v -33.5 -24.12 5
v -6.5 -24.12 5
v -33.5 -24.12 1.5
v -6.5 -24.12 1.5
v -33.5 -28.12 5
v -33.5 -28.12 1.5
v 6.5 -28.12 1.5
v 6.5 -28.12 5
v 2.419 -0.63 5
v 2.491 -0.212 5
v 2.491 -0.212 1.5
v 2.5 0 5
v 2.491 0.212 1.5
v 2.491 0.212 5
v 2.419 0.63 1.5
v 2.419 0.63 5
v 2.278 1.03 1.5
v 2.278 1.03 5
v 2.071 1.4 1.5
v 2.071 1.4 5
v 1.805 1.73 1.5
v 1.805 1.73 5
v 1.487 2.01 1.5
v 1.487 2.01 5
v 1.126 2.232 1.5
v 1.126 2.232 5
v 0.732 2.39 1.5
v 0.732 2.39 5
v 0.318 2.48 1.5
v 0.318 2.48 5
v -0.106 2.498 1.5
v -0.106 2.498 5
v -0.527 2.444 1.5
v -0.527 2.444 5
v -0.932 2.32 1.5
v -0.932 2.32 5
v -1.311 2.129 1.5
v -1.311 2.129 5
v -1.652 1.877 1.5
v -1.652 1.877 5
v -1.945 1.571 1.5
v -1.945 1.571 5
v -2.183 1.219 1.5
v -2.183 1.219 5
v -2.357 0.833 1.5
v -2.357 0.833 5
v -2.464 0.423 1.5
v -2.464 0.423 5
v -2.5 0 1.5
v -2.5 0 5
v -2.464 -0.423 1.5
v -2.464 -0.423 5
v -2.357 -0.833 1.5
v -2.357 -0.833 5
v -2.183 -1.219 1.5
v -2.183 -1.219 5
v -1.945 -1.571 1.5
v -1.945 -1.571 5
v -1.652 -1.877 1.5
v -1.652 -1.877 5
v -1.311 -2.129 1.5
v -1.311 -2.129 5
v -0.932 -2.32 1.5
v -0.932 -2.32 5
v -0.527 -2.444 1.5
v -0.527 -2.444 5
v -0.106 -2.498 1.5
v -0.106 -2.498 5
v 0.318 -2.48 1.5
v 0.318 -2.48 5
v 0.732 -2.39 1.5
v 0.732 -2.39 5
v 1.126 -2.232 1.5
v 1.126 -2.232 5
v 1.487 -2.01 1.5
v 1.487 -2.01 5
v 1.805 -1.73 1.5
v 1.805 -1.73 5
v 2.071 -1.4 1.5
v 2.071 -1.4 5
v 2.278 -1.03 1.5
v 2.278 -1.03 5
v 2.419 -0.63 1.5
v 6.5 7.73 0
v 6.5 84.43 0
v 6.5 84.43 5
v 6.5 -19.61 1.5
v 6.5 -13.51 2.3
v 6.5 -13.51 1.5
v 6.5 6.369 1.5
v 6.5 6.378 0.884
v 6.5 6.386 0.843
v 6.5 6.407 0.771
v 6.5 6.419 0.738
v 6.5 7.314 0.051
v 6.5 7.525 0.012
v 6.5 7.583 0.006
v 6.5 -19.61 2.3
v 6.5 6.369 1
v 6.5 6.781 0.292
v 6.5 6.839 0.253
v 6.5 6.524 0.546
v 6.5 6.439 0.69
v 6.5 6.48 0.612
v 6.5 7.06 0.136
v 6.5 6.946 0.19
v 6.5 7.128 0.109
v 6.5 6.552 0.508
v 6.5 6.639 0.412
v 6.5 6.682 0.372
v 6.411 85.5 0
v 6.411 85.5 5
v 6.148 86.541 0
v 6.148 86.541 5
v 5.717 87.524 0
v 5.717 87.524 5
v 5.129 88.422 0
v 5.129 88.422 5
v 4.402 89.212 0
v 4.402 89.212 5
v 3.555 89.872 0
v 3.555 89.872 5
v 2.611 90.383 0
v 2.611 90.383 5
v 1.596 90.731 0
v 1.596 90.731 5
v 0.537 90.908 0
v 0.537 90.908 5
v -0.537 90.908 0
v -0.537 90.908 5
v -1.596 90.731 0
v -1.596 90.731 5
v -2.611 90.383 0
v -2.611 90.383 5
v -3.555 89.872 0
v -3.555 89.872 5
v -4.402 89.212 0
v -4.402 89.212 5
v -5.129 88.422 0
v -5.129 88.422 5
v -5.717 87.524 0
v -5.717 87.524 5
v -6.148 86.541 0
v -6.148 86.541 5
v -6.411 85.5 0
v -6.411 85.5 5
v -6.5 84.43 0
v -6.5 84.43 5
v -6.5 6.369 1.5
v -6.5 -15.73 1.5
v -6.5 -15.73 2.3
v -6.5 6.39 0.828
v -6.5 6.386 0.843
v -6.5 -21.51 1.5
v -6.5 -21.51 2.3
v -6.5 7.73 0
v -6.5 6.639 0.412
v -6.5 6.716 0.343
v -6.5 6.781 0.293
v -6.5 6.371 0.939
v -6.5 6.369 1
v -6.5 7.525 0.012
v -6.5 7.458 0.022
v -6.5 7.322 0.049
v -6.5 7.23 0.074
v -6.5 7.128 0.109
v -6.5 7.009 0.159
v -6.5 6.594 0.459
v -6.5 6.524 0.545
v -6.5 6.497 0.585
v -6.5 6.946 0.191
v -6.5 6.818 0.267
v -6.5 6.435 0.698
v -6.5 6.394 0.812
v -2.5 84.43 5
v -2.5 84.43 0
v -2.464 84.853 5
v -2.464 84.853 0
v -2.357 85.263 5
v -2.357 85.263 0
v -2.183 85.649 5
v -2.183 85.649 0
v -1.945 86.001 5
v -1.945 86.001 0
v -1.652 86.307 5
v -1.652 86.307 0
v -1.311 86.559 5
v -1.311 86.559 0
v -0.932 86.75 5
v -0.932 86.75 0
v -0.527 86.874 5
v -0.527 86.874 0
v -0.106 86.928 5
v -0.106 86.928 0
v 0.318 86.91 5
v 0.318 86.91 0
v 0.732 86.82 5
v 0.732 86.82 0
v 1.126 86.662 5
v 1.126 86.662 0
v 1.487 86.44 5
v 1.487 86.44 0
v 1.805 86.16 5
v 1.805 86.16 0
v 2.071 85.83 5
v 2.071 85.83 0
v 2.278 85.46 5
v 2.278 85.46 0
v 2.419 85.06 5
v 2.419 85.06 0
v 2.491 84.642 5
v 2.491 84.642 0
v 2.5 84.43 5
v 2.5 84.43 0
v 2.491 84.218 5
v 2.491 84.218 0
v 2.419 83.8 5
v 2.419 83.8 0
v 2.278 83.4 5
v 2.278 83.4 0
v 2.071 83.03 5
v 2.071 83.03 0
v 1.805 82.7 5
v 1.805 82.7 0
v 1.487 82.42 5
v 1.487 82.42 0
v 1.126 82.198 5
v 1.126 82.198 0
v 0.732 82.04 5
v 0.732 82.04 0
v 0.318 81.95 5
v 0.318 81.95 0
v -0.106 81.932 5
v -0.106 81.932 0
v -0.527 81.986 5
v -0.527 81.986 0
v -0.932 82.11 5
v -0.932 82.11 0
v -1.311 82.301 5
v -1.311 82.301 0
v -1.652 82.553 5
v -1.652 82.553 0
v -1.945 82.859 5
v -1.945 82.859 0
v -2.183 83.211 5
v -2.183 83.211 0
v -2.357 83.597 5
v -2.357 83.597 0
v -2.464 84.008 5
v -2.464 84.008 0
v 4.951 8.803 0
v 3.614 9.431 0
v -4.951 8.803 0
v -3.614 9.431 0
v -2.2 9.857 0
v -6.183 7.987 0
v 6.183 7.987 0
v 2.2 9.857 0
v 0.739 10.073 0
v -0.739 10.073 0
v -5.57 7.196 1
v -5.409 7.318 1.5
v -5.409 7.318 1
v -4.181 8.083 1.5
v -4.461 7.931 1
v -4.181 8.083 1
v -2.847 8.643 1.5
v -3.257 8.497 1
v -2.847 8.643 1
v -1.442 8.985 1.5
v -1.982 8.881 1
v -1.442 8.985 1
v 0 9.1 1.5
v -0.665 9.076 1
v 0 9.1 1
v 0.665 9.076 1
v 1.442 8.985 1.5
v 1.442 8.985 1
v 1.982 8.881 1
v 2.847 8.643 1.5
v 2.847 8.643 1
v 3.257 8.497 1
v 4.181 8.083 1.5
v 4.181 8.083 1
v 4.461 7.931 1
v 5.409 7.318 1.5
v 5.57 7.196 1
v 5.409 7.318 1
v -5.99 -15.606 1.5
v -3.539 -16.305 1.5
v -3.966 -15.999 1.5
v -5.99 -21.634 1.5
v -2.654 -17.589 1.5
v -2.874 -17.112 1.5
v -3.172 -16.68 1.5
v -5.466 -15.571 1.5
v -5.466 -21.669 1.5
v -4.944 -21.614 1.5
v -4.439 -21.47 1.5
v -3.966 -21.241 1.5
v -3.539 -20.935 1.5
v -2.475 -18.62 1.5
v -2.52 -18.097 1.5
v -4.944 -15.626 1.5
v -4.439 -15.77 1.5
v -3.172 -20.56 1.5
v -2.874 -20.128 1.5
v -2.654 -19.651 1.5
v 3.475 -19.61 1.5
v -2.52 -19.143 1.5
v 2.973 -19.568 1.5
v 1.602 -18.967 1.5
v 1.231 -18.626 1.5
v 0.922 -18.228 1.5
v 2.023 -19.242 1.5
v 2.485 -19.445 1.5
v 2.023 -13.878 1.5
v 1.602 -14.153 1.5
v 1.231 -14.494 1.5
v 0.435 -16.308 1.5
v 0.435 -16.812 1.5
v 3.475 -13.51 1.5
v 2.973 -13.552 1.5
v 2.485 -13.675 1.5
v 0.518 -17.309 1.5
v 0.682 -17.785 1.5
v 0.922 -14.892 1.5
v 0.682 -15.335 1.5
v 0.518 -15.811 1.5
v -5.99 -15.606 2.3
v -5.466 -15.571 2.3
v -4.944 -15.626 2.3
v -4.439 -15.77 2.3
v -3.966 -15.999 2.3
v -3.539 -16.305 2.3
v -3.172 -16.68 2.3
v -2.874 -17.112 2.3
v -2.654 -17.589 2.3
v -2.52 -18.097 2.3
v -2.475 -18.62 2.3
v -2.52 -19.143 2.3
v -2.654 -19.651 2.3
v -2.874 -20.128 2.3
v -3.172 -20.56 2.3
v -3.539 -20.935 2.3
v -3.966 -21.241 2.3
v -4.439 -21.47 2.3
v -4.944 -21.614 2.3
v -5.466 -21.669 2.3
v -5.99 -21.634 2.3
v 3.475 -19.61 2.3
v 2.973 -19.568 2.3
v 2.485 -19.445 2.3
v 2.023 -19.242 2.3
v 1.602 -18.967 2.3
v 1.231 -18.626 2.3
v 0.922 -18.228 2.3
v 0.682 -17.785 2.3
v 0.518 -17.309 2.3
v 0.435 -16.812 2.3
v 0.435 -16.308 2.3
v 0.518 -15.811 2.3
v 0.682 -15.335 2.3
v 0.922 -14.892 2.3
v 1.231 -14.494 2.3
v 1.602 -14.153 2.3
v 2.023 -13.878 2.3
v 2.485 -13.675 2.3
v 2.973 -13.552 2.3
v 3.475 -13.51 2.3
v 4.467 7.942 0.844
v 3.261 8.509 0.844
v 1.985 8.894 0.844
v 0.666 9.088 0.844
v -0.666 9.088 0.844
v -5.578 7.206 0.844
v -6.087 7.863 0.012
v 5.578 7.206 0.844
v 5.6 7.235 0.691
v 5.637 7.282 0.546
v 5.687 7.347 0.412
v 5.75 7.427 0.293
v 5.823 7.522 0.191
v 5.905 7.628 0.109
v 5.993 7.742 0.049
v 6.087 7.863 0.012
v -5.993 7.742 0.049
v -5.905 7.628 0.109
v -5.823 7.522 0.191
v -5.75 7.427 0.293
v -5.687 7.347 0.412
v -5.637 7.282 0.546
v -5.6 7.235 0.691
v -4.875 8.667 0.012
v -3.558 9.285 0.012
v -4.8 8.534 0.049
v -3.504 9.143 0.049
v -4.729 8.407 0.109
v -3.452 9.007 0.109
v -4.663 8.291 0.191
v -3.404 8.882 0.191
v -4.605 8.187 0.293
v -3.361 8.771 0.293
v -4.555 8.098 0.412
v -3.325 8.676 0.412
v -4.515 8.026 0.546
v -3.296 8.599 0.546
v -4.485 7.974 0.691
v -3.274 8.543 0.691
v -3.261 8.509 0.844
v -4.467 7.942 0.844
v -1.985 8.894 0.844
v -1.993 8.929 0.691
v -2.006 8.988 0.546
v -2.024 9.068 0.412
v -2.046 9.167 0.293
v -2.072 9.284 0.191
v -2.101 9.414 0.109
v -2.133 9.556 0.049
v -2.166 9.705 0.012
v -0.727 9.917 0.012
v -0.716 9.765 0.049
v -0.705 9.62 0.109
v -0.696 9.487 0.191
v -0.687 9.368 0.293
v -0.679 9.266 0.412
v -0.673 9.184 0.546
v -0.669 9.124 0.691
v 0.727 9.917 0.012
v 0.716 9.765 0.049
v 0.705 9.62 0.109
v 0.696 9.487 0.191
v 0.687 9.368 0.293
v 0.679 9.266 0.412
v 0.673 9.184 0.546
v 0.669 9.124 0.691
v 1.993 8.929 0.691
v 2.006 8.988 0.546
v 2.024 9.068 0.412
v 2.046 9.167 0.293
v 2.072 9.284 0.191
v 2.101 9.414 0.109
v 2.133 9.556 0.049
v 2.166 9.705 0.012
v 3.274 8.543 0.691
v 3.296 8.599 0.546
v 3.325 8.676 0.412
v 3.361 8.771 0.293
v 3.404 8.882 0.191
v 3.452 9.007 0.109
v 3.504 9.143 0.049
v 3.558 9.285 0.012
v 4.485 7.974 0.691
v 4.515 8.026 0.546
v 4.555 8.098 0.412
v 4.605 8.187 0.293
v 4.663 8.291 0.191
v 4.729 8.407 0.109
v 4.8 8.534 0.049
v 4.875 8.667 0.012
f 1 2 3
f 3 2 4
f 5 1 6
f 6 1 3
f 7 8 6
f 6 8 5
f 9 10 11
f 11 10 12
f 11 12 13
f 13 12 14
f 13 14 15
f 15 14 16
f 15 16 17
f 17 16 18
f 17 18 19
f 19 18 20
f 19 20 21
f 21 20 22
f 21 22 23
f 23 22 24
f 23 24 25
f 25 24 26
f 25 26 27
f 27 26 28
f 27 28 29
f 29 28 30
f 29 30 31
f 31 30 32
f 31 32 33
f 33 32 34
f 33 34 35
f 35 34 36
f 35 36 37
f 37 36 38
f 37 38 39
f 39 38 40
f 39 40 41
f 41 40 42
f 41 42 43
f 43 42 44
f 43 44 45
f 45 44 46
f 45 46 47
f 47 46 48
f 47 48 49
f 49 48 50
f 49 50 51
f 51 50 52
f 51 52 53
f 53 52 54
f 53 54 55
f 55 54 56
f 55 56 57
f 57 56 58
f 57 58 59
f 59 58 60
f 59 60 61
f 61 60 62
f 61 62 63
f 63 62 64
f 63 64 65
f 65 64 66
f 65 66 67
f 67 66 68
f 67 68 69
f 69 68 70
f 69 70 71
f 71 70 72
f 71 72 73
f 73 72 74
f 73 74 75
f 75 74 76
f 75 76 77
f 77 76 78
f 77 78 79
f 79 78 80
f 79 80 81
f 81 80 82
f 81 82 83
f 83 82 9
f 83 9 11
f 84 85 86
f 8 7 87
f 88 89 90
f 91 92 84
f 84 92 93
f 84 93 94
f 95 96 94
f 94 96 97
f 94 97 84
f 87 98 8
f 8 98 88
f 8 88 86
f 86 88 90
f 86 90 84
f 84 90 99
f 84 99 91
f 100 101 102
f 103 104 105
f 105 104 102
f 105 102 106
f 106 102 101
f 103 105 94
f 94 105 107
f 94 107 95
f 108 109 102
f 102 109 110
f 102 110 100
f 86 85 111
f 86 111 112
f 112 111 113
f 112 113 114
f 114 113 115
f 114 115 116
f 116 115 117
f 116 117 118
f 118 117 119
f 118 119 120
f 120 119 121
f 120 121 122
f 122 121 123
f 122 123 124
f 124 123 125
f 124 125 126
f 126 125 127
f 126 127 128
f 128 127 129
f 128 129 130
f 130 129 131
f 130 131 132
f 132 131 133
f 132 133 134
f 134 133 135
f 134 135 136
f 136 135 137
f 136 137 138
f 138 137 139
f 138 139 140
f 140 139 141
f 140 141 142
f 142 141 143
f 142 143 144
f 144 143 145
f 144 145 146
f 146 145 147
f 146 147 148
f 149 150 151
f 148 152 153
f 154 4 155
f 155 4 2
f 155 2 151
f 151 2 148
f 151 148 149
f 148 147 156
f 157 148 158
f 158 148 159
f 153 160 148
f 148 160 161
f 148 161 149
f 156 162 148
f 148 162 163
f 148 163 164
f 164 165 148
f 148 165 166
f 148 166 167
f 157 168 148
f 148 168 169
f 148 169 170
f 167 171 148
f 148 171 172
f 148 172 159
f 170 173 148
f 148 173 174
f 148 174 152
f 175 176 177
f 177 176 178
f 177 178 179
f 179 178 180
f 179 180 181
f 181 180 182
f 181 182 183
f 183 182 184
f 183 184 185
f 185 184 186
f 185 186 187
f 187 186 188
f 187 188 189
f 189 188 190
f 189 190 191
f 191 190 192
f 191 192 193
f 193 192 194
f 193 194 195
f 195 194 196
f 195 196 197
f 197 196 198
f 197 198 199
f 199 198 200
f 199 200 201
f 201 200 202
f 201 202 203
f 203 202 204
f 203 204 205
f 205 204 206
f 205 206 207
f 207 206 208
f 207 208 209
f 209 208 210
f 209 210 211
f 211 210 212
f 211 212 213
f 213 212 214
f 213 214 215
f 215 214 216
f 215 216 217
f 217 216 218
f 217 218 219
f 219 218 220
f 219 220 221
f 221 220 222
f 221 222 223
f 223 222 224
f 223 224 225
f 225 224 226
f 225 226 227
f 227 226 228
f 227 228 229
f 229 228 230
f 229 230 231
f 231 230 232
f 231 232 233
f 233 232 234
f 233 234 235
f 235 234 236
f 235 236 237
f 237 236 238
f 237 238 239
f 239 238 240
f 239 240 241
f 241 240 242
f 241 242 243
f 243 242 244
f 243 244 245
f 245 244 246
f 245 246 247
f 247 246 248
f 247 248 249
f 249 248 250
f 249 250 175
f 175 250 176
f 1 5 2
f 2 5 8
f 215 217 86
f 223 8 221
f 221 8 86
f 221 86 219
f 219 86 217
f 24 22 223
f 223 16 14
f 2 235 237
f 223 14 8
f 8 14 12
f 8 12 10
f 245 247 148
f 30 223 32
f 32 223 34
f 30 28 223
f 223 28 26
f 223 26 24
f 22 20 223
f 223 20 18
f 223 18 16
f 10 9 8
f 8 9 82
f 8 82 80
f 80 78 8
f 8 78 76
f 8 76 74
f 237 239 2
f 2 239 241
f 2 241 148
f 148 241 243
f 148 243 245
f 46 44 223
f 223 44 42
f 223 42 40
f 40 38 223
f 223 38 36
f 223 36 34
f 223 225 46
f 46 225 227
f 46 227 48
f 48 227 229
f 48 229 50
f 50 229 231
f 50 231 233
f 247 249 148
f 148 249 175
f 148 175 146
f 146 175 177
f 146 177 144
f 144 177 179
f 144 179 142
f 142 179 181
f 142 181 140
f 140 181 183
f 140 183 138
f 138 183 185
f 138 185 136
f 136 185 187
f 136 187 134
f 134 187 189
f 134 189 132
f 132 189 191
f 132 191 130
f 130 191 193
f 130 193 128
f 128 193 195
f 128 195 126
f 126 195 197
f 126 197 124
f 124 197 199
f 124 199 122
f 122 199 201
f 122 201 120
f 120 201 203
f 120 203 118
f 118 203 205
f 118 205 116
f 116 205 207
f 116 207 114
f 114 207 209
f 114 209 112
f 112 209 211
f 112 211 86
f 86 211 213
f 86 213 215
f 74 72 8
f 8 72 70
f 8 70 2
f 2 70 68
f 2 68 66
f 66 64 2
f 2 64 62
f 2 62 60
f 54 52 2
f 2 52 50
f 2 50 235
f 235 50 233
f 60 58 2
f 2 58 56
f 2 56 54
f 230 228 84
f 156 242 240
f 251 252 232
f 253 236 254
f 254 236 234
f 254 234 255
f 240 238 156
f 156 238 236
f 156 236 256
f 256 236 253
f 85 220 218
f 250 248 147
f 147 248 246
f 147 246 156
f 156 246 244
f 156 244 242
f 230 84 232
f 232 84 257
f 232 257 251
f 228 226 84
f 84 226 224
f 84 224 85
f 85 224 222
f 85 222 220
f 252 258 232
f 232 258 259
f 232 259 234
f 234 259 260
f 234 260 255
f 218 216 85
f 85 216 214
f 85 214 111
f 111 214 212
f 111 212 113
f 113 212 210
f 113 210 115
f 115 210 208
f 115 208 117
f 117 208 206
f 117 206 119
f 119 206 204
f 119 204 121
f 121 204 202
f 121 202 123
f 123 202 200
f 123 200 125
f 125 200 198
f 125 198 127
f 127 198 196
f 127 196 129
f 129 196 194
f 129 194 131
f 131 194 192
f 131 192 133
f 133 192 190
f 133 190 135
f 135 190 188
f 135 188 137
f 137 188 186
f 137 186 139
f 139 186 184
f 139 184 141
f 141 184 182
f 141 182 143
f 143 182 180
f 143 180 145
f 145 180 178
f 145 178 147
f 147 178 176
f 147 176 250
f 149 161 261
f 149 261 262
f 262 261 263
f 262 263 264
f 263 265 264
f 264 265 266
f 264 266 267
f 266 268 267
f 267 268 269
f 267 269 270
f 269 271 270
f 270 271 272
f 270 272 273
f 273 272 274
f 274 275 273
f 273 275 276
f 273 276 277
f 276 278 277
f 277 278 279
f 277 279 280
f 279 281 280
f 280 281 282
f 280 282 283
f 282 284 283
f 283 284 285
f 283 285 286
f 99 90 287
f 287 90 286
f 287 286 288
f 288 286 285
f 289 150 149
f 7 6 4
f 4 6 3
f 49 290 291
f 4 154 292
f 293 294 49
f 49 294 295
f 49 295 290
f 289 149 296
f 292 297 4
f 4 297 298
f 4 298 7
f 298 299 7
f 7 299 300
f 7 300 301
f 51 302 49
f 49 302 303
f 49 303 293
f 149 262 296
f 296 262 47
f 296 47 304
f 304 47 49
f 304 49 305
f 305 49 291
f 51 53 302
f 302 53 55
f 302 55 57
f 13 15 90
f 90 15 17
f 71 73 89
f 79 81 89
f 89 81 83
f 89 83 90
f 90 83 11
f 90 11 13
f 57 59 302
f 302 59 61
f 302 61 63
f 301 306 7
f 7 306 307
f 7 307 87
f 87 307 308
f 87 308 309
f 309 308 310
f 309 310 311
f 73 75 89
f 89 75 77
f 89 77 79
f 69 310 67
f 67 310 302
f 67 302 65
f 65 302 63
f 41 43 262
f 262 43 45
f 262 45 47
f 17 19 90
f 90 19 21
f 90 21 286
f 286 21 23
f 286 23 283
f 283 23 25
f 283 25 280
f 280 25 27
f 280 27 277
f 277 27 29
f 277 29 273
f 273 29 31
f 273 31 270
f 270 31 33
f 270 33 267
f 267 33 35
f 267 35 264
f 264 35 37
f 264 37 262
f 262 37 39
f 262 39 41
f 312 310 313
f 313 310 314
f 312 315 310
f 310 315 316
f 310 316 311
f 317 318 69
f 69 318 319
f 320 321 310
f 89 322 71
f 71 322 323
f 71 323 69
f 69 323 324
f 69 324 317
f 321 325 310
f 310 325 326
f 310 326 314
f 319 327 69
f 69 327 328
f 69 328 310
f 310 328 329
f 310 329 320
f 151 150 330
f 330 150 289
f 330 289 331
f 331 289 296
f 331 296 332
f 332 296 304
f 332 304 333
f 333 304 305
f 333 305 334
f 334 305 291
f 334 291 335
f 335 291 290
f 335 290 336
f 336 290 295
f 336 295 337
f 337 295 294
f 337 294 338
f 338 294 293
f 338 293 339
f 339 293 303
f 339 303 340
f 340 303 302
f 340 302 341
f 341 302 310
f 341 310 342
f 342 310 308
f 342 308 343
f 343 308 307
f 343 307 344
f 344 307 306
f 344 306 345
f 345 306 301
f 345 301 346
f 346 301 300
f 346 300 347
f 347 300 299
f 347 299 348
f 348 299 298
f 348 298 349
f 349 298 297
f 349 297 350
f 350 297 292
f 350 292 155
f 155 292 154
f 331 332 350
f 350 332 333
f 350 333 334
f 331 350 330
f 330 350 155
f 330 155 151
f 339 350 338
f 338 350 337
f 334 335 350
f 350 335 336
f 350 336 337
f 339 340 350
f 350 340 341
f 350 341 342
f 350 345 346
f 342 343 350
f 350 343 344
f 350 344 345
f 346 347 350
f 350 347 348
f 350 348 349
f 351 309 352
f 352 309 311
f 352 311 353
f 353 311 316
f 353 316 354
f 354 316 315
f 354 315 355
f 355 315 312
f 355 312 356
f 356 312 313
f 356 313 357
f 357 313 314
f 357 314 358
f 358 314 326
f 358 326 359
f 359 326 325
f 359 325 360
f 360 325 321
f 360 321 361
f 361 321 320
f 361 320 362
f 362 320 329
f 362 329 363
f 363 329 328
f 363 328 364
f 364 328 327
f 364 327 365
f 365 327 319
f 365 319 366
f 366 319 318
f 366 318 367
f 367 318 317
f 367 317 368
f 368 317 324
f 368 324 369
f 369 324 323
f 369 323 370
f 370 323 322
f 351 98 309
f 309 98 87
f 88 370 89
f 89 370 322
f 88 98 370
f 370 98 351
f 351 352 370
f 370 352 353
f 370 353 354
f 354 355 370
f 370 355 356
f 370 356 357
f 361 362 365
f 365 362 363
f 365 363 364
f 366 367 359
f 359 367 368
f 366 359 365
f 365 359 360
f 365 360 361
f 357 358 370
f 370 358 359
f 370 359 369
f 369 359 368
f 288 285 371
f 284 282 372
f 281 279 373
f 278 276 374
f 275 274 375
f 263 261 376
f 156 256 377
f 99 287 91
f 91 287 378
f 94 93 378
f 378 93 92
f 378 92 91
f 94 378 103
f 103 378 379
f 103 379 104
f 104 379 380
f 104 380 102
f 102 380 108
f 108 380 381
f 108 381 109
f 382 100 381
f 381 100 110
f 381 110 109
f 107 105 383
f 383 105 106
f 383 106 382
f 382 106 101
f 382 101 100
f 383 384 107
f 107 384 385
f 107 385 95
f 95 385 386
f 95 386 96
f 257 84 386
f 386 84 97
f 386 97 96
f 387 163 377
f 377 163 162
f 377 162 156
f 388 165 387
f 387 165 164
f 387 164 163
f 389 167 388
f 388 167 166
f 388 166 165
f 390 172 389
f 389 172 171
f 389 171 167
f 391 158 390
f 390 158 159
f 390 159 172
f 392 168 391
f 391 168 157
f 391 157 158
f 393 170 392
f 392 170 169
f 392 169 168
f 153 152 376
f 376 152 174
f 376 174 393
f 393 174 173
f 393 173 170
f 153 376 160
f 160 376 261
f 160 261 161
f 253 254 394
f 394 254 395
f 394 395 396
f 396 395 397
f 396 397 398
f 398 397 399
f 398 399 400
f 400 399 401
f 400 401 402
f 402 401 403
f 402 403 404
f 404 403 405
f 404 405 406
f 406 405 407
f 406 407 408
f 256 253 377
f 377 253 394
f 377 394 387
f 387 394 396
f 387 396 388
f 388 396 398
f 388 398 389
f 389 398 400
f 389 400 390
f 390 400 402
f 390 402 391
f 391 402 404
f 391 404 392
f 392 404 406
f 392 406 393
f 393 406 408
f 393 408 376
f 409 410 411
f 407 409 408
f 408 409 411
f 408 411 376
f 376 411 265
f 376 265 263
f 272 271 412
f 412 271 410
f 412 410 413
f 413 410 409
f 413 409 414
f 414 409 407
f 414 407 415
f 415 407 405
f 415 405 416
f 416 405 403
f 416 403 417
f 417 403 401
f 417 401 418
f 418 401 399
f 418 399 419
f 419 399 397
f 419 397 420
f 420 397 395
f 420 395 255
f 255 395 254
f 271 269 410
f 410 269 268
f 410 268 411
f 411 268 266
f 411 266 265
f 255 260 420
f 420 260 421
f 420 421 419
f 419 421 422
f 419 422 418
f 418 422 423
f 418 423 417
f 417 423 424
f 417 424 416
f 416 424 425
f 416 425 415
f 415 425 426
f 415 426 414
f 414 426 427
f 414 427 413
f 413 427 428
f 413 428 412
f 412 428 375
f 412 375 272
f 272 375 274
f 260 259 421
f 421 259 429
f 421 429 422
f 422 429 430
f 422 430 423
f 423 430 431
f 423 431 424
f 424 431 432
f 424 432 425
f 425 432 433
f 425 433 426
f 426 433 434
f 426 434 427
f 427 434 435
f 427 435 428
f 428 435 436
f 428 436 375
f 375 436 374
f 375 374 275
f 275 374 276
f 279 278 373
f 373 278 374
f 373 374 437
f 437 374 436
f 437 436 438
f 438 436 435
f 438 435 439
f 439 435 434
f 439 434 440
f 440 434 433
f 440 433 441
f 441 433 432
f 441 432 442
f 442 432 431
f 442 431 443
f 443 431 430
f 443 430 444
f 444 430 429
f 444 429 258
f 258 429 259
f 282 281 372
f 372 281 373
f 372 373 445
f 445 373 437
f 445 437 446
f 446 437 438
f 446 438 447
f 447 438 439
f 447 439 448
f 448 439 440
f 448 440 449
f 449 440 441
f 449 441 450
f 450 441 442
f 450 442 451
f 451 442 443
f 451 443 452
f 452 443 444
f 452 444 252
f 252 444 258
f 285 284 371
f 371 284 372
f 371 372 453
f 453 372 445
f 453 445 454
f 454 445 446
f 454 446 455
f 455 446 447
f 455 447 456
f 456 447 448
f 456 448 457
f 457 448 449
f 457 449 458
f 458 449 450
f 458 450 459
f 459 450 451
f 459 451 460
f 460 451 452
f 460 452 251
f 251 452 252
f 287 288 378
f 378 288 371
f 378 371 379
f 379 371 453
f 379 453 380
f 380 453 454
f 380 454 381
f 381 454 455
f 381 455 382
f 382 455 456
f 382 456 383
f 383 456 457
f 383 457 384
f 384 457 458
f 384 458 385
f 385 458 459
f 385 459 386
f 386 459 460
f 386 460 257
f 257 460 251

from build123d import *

# Parameters (mm, degrees)
SKETCH1_W           = 27
SKETCH1_H           = 4
SKETCH1_W_2         = 13
SKETCH1_R           = 6.5
SKETCH1_R_2         = 2.5
BOSS_EXTRUDE1_DEPTH = 5
SKETCH2_R           = 2.5
CUT_EXTRUDE1_DEPTH  = 1.5
CUT_EXTRUDE2_DEPTH  = 0.8
FILLET1_R           = 1


with BuildPart() as part:
    # Sketch1 → Boss-Extrude1 (new body)
    # profile 1 of 6: a face of its own
    with BuildSketch(Plane.XY):
        with Locations((-20, -26.12)):
            Rectangle(SKETCH1_W, SKETCH1_H)
    # profile 2 of 6: a face of its own
    with BuildSketch(Plane.XY):
        with Locations((0, -26.12)):
            Rectangle(SKETCH1_W_2, SKETCH1_H)
    # profile 3 of 6: a face of its own
    with BuildSketch(Plane.XY):
        with BuildLine():
            Line((-6.5, -24.12), (6.5, -24.12))
            Line((6.5, -24.12), (6.5, 0))
            ThreePointArc((6.5, 0), (0, -6.5), (-6.5, 0))
            Line((-6.5, 0), (-6.5, -24.12))
        make_face()
    # profile 4 of 6: a face of its own
    with BuildSketch(Plane.XY):
        Circle(SKETCH1_R)
        Circle(SKETCH1_R_2, mode=Mode.SUBTRACT)
    # profile 5 of 6: a face of its own
    with BuildSketch(Plane.XY):
        with BuildLine():
            ThreePointArc((-6.5, 0), (0, 6.5), (6.5, 0))
            Line((6.5, 0), (6.5, 84.43))
            ThreePointArc((6.5, 84.43), (0, 77.93), (-6.5, 84.43))
            Line((-6.5, 84.43), (-6.5, 0))
        make_face()
    # profile 6 of 6: a face of its own
    with BuildSketch(Plane.XY):
        with Locations((0, 84.43)):
            Circle(SKETCH1_R)
        with Locations((0, 84.43)):
            Circle(SKETCH1_R_2, mode=Mode.SUBTRACT)
    extrude(amount=BOSS_EXTRUDE1_DEPTH)

    # Sketch2 → Cut-Extrude1 (cut)
    with BuildSketch(Plane(origin=(0, 0, 0), x_dir=(-1, 0, 0), z_dir=(0, 0, -1))):
        with BuildLine():
            Line((33.5, -28.12), (33.5, -24.12))
            Line((33.5, -24.12), (6.5, -24.12))
            Line((6.5, -24.12), (6.5, 6.368673331))
            ThreePointArc((6.5, 6.368673331), (0, 9.1), (-6.5, 6.368673331))
            Line((-6.5, 6.368673331), (-6.5, -28.12))
            Line((-6.5, -28.12), (33.5, -28.12))
        make_face()
        Circle(SKETCH2_R, mode=Mode.SUBTRACT)
    extrude(amount=-CUT_EXTRUDE1_DEPTH, mode=Mode.SUBTRACT)

    # Sketch3 → Cut-Extrude2 (cut)
    with BuildSketch(Plane(origin=(0, 0, 1.5), x_dir=(-1, 0, 0), z_dir=(0, 0, -1))):
        with BuildLine():
            ThreePointArc((-0.425, -16.56), (-1.318324317, -14.403324317), (-3.475, -13.51))
            ThreePointArc((-3.475, -13.51), (-5.489184715, -14.269681259), (-6.5, -16.170288568))
            Line((-6.5, -16.170288568), (-6.5, -16.949711432))
            ThreePointArc((-6.5, -16.949711432), (-5.489184715, -18.850318741), (-3.475, -19.61))
            ThreePointArc((-3.475, -19.61), (-1.318324317, -18.716675683), (-0.425, -16.56))
        make_face()
        with BuildLine():
            Line((-6.5, -16.949711432), (-6.5, -16.170288568))
            ThreePointArc((-6.5, -16.170288568), (-6.525, -16.56), (-6.5, -16.949711432))
        make_face()
        with BuildLine():
            Line((-6.5, -19.61), (-3.475, -19.61))
            ThreePointArc((-3.475, -19.61), (-5.489184715, -18.850318741), (-6.5, -16.949711432))
            Line((-6.5, -16.949711432), (-6.5, -19.61))
        make_face()
        with BuildLine():
            ThreePointArc((-6.5, -16.170288568), (-5.489184715, -14.269681259), (-3.475, -13.51))
            Line((-3.475, -13.51), (-6.5, -13.51))
            Line((-6.5, -13.51), (-6.5, -16.170288568))
        make_face()
        with BuildLine():
            ThreePointArc((6.5, -21.509961072), (8.002523966, -20.398869023), (8.575, -18.62))
            ThreePointArc((8.575, -18.62), (8.002523966, -16.841130977), (6.5, -15.730038928))
            Line((6.5, -15.730038928), (6.5, -21.509961072))
        make_face()
        with BuildLine():
            Line((6.5, -21.509961072), (6.5, -15.730038928))
            ThreePointArc((6.5, -15.730038928), (2.475, -18.62), (6.5, -21.509961072))
        make_face()
    extrude(amount=-CUT_EXTRUDE2_DEPTH, mode=Mode.SUBTRACT)

    # Fillet1
    fillet1_edges = [part.edges().sort_by_distance(p)[0] for p in [
        (0, 9.1, 0),
    ]]
    fillet(fillet1_edges, radius=FILLET1_R)


solid = part.part
